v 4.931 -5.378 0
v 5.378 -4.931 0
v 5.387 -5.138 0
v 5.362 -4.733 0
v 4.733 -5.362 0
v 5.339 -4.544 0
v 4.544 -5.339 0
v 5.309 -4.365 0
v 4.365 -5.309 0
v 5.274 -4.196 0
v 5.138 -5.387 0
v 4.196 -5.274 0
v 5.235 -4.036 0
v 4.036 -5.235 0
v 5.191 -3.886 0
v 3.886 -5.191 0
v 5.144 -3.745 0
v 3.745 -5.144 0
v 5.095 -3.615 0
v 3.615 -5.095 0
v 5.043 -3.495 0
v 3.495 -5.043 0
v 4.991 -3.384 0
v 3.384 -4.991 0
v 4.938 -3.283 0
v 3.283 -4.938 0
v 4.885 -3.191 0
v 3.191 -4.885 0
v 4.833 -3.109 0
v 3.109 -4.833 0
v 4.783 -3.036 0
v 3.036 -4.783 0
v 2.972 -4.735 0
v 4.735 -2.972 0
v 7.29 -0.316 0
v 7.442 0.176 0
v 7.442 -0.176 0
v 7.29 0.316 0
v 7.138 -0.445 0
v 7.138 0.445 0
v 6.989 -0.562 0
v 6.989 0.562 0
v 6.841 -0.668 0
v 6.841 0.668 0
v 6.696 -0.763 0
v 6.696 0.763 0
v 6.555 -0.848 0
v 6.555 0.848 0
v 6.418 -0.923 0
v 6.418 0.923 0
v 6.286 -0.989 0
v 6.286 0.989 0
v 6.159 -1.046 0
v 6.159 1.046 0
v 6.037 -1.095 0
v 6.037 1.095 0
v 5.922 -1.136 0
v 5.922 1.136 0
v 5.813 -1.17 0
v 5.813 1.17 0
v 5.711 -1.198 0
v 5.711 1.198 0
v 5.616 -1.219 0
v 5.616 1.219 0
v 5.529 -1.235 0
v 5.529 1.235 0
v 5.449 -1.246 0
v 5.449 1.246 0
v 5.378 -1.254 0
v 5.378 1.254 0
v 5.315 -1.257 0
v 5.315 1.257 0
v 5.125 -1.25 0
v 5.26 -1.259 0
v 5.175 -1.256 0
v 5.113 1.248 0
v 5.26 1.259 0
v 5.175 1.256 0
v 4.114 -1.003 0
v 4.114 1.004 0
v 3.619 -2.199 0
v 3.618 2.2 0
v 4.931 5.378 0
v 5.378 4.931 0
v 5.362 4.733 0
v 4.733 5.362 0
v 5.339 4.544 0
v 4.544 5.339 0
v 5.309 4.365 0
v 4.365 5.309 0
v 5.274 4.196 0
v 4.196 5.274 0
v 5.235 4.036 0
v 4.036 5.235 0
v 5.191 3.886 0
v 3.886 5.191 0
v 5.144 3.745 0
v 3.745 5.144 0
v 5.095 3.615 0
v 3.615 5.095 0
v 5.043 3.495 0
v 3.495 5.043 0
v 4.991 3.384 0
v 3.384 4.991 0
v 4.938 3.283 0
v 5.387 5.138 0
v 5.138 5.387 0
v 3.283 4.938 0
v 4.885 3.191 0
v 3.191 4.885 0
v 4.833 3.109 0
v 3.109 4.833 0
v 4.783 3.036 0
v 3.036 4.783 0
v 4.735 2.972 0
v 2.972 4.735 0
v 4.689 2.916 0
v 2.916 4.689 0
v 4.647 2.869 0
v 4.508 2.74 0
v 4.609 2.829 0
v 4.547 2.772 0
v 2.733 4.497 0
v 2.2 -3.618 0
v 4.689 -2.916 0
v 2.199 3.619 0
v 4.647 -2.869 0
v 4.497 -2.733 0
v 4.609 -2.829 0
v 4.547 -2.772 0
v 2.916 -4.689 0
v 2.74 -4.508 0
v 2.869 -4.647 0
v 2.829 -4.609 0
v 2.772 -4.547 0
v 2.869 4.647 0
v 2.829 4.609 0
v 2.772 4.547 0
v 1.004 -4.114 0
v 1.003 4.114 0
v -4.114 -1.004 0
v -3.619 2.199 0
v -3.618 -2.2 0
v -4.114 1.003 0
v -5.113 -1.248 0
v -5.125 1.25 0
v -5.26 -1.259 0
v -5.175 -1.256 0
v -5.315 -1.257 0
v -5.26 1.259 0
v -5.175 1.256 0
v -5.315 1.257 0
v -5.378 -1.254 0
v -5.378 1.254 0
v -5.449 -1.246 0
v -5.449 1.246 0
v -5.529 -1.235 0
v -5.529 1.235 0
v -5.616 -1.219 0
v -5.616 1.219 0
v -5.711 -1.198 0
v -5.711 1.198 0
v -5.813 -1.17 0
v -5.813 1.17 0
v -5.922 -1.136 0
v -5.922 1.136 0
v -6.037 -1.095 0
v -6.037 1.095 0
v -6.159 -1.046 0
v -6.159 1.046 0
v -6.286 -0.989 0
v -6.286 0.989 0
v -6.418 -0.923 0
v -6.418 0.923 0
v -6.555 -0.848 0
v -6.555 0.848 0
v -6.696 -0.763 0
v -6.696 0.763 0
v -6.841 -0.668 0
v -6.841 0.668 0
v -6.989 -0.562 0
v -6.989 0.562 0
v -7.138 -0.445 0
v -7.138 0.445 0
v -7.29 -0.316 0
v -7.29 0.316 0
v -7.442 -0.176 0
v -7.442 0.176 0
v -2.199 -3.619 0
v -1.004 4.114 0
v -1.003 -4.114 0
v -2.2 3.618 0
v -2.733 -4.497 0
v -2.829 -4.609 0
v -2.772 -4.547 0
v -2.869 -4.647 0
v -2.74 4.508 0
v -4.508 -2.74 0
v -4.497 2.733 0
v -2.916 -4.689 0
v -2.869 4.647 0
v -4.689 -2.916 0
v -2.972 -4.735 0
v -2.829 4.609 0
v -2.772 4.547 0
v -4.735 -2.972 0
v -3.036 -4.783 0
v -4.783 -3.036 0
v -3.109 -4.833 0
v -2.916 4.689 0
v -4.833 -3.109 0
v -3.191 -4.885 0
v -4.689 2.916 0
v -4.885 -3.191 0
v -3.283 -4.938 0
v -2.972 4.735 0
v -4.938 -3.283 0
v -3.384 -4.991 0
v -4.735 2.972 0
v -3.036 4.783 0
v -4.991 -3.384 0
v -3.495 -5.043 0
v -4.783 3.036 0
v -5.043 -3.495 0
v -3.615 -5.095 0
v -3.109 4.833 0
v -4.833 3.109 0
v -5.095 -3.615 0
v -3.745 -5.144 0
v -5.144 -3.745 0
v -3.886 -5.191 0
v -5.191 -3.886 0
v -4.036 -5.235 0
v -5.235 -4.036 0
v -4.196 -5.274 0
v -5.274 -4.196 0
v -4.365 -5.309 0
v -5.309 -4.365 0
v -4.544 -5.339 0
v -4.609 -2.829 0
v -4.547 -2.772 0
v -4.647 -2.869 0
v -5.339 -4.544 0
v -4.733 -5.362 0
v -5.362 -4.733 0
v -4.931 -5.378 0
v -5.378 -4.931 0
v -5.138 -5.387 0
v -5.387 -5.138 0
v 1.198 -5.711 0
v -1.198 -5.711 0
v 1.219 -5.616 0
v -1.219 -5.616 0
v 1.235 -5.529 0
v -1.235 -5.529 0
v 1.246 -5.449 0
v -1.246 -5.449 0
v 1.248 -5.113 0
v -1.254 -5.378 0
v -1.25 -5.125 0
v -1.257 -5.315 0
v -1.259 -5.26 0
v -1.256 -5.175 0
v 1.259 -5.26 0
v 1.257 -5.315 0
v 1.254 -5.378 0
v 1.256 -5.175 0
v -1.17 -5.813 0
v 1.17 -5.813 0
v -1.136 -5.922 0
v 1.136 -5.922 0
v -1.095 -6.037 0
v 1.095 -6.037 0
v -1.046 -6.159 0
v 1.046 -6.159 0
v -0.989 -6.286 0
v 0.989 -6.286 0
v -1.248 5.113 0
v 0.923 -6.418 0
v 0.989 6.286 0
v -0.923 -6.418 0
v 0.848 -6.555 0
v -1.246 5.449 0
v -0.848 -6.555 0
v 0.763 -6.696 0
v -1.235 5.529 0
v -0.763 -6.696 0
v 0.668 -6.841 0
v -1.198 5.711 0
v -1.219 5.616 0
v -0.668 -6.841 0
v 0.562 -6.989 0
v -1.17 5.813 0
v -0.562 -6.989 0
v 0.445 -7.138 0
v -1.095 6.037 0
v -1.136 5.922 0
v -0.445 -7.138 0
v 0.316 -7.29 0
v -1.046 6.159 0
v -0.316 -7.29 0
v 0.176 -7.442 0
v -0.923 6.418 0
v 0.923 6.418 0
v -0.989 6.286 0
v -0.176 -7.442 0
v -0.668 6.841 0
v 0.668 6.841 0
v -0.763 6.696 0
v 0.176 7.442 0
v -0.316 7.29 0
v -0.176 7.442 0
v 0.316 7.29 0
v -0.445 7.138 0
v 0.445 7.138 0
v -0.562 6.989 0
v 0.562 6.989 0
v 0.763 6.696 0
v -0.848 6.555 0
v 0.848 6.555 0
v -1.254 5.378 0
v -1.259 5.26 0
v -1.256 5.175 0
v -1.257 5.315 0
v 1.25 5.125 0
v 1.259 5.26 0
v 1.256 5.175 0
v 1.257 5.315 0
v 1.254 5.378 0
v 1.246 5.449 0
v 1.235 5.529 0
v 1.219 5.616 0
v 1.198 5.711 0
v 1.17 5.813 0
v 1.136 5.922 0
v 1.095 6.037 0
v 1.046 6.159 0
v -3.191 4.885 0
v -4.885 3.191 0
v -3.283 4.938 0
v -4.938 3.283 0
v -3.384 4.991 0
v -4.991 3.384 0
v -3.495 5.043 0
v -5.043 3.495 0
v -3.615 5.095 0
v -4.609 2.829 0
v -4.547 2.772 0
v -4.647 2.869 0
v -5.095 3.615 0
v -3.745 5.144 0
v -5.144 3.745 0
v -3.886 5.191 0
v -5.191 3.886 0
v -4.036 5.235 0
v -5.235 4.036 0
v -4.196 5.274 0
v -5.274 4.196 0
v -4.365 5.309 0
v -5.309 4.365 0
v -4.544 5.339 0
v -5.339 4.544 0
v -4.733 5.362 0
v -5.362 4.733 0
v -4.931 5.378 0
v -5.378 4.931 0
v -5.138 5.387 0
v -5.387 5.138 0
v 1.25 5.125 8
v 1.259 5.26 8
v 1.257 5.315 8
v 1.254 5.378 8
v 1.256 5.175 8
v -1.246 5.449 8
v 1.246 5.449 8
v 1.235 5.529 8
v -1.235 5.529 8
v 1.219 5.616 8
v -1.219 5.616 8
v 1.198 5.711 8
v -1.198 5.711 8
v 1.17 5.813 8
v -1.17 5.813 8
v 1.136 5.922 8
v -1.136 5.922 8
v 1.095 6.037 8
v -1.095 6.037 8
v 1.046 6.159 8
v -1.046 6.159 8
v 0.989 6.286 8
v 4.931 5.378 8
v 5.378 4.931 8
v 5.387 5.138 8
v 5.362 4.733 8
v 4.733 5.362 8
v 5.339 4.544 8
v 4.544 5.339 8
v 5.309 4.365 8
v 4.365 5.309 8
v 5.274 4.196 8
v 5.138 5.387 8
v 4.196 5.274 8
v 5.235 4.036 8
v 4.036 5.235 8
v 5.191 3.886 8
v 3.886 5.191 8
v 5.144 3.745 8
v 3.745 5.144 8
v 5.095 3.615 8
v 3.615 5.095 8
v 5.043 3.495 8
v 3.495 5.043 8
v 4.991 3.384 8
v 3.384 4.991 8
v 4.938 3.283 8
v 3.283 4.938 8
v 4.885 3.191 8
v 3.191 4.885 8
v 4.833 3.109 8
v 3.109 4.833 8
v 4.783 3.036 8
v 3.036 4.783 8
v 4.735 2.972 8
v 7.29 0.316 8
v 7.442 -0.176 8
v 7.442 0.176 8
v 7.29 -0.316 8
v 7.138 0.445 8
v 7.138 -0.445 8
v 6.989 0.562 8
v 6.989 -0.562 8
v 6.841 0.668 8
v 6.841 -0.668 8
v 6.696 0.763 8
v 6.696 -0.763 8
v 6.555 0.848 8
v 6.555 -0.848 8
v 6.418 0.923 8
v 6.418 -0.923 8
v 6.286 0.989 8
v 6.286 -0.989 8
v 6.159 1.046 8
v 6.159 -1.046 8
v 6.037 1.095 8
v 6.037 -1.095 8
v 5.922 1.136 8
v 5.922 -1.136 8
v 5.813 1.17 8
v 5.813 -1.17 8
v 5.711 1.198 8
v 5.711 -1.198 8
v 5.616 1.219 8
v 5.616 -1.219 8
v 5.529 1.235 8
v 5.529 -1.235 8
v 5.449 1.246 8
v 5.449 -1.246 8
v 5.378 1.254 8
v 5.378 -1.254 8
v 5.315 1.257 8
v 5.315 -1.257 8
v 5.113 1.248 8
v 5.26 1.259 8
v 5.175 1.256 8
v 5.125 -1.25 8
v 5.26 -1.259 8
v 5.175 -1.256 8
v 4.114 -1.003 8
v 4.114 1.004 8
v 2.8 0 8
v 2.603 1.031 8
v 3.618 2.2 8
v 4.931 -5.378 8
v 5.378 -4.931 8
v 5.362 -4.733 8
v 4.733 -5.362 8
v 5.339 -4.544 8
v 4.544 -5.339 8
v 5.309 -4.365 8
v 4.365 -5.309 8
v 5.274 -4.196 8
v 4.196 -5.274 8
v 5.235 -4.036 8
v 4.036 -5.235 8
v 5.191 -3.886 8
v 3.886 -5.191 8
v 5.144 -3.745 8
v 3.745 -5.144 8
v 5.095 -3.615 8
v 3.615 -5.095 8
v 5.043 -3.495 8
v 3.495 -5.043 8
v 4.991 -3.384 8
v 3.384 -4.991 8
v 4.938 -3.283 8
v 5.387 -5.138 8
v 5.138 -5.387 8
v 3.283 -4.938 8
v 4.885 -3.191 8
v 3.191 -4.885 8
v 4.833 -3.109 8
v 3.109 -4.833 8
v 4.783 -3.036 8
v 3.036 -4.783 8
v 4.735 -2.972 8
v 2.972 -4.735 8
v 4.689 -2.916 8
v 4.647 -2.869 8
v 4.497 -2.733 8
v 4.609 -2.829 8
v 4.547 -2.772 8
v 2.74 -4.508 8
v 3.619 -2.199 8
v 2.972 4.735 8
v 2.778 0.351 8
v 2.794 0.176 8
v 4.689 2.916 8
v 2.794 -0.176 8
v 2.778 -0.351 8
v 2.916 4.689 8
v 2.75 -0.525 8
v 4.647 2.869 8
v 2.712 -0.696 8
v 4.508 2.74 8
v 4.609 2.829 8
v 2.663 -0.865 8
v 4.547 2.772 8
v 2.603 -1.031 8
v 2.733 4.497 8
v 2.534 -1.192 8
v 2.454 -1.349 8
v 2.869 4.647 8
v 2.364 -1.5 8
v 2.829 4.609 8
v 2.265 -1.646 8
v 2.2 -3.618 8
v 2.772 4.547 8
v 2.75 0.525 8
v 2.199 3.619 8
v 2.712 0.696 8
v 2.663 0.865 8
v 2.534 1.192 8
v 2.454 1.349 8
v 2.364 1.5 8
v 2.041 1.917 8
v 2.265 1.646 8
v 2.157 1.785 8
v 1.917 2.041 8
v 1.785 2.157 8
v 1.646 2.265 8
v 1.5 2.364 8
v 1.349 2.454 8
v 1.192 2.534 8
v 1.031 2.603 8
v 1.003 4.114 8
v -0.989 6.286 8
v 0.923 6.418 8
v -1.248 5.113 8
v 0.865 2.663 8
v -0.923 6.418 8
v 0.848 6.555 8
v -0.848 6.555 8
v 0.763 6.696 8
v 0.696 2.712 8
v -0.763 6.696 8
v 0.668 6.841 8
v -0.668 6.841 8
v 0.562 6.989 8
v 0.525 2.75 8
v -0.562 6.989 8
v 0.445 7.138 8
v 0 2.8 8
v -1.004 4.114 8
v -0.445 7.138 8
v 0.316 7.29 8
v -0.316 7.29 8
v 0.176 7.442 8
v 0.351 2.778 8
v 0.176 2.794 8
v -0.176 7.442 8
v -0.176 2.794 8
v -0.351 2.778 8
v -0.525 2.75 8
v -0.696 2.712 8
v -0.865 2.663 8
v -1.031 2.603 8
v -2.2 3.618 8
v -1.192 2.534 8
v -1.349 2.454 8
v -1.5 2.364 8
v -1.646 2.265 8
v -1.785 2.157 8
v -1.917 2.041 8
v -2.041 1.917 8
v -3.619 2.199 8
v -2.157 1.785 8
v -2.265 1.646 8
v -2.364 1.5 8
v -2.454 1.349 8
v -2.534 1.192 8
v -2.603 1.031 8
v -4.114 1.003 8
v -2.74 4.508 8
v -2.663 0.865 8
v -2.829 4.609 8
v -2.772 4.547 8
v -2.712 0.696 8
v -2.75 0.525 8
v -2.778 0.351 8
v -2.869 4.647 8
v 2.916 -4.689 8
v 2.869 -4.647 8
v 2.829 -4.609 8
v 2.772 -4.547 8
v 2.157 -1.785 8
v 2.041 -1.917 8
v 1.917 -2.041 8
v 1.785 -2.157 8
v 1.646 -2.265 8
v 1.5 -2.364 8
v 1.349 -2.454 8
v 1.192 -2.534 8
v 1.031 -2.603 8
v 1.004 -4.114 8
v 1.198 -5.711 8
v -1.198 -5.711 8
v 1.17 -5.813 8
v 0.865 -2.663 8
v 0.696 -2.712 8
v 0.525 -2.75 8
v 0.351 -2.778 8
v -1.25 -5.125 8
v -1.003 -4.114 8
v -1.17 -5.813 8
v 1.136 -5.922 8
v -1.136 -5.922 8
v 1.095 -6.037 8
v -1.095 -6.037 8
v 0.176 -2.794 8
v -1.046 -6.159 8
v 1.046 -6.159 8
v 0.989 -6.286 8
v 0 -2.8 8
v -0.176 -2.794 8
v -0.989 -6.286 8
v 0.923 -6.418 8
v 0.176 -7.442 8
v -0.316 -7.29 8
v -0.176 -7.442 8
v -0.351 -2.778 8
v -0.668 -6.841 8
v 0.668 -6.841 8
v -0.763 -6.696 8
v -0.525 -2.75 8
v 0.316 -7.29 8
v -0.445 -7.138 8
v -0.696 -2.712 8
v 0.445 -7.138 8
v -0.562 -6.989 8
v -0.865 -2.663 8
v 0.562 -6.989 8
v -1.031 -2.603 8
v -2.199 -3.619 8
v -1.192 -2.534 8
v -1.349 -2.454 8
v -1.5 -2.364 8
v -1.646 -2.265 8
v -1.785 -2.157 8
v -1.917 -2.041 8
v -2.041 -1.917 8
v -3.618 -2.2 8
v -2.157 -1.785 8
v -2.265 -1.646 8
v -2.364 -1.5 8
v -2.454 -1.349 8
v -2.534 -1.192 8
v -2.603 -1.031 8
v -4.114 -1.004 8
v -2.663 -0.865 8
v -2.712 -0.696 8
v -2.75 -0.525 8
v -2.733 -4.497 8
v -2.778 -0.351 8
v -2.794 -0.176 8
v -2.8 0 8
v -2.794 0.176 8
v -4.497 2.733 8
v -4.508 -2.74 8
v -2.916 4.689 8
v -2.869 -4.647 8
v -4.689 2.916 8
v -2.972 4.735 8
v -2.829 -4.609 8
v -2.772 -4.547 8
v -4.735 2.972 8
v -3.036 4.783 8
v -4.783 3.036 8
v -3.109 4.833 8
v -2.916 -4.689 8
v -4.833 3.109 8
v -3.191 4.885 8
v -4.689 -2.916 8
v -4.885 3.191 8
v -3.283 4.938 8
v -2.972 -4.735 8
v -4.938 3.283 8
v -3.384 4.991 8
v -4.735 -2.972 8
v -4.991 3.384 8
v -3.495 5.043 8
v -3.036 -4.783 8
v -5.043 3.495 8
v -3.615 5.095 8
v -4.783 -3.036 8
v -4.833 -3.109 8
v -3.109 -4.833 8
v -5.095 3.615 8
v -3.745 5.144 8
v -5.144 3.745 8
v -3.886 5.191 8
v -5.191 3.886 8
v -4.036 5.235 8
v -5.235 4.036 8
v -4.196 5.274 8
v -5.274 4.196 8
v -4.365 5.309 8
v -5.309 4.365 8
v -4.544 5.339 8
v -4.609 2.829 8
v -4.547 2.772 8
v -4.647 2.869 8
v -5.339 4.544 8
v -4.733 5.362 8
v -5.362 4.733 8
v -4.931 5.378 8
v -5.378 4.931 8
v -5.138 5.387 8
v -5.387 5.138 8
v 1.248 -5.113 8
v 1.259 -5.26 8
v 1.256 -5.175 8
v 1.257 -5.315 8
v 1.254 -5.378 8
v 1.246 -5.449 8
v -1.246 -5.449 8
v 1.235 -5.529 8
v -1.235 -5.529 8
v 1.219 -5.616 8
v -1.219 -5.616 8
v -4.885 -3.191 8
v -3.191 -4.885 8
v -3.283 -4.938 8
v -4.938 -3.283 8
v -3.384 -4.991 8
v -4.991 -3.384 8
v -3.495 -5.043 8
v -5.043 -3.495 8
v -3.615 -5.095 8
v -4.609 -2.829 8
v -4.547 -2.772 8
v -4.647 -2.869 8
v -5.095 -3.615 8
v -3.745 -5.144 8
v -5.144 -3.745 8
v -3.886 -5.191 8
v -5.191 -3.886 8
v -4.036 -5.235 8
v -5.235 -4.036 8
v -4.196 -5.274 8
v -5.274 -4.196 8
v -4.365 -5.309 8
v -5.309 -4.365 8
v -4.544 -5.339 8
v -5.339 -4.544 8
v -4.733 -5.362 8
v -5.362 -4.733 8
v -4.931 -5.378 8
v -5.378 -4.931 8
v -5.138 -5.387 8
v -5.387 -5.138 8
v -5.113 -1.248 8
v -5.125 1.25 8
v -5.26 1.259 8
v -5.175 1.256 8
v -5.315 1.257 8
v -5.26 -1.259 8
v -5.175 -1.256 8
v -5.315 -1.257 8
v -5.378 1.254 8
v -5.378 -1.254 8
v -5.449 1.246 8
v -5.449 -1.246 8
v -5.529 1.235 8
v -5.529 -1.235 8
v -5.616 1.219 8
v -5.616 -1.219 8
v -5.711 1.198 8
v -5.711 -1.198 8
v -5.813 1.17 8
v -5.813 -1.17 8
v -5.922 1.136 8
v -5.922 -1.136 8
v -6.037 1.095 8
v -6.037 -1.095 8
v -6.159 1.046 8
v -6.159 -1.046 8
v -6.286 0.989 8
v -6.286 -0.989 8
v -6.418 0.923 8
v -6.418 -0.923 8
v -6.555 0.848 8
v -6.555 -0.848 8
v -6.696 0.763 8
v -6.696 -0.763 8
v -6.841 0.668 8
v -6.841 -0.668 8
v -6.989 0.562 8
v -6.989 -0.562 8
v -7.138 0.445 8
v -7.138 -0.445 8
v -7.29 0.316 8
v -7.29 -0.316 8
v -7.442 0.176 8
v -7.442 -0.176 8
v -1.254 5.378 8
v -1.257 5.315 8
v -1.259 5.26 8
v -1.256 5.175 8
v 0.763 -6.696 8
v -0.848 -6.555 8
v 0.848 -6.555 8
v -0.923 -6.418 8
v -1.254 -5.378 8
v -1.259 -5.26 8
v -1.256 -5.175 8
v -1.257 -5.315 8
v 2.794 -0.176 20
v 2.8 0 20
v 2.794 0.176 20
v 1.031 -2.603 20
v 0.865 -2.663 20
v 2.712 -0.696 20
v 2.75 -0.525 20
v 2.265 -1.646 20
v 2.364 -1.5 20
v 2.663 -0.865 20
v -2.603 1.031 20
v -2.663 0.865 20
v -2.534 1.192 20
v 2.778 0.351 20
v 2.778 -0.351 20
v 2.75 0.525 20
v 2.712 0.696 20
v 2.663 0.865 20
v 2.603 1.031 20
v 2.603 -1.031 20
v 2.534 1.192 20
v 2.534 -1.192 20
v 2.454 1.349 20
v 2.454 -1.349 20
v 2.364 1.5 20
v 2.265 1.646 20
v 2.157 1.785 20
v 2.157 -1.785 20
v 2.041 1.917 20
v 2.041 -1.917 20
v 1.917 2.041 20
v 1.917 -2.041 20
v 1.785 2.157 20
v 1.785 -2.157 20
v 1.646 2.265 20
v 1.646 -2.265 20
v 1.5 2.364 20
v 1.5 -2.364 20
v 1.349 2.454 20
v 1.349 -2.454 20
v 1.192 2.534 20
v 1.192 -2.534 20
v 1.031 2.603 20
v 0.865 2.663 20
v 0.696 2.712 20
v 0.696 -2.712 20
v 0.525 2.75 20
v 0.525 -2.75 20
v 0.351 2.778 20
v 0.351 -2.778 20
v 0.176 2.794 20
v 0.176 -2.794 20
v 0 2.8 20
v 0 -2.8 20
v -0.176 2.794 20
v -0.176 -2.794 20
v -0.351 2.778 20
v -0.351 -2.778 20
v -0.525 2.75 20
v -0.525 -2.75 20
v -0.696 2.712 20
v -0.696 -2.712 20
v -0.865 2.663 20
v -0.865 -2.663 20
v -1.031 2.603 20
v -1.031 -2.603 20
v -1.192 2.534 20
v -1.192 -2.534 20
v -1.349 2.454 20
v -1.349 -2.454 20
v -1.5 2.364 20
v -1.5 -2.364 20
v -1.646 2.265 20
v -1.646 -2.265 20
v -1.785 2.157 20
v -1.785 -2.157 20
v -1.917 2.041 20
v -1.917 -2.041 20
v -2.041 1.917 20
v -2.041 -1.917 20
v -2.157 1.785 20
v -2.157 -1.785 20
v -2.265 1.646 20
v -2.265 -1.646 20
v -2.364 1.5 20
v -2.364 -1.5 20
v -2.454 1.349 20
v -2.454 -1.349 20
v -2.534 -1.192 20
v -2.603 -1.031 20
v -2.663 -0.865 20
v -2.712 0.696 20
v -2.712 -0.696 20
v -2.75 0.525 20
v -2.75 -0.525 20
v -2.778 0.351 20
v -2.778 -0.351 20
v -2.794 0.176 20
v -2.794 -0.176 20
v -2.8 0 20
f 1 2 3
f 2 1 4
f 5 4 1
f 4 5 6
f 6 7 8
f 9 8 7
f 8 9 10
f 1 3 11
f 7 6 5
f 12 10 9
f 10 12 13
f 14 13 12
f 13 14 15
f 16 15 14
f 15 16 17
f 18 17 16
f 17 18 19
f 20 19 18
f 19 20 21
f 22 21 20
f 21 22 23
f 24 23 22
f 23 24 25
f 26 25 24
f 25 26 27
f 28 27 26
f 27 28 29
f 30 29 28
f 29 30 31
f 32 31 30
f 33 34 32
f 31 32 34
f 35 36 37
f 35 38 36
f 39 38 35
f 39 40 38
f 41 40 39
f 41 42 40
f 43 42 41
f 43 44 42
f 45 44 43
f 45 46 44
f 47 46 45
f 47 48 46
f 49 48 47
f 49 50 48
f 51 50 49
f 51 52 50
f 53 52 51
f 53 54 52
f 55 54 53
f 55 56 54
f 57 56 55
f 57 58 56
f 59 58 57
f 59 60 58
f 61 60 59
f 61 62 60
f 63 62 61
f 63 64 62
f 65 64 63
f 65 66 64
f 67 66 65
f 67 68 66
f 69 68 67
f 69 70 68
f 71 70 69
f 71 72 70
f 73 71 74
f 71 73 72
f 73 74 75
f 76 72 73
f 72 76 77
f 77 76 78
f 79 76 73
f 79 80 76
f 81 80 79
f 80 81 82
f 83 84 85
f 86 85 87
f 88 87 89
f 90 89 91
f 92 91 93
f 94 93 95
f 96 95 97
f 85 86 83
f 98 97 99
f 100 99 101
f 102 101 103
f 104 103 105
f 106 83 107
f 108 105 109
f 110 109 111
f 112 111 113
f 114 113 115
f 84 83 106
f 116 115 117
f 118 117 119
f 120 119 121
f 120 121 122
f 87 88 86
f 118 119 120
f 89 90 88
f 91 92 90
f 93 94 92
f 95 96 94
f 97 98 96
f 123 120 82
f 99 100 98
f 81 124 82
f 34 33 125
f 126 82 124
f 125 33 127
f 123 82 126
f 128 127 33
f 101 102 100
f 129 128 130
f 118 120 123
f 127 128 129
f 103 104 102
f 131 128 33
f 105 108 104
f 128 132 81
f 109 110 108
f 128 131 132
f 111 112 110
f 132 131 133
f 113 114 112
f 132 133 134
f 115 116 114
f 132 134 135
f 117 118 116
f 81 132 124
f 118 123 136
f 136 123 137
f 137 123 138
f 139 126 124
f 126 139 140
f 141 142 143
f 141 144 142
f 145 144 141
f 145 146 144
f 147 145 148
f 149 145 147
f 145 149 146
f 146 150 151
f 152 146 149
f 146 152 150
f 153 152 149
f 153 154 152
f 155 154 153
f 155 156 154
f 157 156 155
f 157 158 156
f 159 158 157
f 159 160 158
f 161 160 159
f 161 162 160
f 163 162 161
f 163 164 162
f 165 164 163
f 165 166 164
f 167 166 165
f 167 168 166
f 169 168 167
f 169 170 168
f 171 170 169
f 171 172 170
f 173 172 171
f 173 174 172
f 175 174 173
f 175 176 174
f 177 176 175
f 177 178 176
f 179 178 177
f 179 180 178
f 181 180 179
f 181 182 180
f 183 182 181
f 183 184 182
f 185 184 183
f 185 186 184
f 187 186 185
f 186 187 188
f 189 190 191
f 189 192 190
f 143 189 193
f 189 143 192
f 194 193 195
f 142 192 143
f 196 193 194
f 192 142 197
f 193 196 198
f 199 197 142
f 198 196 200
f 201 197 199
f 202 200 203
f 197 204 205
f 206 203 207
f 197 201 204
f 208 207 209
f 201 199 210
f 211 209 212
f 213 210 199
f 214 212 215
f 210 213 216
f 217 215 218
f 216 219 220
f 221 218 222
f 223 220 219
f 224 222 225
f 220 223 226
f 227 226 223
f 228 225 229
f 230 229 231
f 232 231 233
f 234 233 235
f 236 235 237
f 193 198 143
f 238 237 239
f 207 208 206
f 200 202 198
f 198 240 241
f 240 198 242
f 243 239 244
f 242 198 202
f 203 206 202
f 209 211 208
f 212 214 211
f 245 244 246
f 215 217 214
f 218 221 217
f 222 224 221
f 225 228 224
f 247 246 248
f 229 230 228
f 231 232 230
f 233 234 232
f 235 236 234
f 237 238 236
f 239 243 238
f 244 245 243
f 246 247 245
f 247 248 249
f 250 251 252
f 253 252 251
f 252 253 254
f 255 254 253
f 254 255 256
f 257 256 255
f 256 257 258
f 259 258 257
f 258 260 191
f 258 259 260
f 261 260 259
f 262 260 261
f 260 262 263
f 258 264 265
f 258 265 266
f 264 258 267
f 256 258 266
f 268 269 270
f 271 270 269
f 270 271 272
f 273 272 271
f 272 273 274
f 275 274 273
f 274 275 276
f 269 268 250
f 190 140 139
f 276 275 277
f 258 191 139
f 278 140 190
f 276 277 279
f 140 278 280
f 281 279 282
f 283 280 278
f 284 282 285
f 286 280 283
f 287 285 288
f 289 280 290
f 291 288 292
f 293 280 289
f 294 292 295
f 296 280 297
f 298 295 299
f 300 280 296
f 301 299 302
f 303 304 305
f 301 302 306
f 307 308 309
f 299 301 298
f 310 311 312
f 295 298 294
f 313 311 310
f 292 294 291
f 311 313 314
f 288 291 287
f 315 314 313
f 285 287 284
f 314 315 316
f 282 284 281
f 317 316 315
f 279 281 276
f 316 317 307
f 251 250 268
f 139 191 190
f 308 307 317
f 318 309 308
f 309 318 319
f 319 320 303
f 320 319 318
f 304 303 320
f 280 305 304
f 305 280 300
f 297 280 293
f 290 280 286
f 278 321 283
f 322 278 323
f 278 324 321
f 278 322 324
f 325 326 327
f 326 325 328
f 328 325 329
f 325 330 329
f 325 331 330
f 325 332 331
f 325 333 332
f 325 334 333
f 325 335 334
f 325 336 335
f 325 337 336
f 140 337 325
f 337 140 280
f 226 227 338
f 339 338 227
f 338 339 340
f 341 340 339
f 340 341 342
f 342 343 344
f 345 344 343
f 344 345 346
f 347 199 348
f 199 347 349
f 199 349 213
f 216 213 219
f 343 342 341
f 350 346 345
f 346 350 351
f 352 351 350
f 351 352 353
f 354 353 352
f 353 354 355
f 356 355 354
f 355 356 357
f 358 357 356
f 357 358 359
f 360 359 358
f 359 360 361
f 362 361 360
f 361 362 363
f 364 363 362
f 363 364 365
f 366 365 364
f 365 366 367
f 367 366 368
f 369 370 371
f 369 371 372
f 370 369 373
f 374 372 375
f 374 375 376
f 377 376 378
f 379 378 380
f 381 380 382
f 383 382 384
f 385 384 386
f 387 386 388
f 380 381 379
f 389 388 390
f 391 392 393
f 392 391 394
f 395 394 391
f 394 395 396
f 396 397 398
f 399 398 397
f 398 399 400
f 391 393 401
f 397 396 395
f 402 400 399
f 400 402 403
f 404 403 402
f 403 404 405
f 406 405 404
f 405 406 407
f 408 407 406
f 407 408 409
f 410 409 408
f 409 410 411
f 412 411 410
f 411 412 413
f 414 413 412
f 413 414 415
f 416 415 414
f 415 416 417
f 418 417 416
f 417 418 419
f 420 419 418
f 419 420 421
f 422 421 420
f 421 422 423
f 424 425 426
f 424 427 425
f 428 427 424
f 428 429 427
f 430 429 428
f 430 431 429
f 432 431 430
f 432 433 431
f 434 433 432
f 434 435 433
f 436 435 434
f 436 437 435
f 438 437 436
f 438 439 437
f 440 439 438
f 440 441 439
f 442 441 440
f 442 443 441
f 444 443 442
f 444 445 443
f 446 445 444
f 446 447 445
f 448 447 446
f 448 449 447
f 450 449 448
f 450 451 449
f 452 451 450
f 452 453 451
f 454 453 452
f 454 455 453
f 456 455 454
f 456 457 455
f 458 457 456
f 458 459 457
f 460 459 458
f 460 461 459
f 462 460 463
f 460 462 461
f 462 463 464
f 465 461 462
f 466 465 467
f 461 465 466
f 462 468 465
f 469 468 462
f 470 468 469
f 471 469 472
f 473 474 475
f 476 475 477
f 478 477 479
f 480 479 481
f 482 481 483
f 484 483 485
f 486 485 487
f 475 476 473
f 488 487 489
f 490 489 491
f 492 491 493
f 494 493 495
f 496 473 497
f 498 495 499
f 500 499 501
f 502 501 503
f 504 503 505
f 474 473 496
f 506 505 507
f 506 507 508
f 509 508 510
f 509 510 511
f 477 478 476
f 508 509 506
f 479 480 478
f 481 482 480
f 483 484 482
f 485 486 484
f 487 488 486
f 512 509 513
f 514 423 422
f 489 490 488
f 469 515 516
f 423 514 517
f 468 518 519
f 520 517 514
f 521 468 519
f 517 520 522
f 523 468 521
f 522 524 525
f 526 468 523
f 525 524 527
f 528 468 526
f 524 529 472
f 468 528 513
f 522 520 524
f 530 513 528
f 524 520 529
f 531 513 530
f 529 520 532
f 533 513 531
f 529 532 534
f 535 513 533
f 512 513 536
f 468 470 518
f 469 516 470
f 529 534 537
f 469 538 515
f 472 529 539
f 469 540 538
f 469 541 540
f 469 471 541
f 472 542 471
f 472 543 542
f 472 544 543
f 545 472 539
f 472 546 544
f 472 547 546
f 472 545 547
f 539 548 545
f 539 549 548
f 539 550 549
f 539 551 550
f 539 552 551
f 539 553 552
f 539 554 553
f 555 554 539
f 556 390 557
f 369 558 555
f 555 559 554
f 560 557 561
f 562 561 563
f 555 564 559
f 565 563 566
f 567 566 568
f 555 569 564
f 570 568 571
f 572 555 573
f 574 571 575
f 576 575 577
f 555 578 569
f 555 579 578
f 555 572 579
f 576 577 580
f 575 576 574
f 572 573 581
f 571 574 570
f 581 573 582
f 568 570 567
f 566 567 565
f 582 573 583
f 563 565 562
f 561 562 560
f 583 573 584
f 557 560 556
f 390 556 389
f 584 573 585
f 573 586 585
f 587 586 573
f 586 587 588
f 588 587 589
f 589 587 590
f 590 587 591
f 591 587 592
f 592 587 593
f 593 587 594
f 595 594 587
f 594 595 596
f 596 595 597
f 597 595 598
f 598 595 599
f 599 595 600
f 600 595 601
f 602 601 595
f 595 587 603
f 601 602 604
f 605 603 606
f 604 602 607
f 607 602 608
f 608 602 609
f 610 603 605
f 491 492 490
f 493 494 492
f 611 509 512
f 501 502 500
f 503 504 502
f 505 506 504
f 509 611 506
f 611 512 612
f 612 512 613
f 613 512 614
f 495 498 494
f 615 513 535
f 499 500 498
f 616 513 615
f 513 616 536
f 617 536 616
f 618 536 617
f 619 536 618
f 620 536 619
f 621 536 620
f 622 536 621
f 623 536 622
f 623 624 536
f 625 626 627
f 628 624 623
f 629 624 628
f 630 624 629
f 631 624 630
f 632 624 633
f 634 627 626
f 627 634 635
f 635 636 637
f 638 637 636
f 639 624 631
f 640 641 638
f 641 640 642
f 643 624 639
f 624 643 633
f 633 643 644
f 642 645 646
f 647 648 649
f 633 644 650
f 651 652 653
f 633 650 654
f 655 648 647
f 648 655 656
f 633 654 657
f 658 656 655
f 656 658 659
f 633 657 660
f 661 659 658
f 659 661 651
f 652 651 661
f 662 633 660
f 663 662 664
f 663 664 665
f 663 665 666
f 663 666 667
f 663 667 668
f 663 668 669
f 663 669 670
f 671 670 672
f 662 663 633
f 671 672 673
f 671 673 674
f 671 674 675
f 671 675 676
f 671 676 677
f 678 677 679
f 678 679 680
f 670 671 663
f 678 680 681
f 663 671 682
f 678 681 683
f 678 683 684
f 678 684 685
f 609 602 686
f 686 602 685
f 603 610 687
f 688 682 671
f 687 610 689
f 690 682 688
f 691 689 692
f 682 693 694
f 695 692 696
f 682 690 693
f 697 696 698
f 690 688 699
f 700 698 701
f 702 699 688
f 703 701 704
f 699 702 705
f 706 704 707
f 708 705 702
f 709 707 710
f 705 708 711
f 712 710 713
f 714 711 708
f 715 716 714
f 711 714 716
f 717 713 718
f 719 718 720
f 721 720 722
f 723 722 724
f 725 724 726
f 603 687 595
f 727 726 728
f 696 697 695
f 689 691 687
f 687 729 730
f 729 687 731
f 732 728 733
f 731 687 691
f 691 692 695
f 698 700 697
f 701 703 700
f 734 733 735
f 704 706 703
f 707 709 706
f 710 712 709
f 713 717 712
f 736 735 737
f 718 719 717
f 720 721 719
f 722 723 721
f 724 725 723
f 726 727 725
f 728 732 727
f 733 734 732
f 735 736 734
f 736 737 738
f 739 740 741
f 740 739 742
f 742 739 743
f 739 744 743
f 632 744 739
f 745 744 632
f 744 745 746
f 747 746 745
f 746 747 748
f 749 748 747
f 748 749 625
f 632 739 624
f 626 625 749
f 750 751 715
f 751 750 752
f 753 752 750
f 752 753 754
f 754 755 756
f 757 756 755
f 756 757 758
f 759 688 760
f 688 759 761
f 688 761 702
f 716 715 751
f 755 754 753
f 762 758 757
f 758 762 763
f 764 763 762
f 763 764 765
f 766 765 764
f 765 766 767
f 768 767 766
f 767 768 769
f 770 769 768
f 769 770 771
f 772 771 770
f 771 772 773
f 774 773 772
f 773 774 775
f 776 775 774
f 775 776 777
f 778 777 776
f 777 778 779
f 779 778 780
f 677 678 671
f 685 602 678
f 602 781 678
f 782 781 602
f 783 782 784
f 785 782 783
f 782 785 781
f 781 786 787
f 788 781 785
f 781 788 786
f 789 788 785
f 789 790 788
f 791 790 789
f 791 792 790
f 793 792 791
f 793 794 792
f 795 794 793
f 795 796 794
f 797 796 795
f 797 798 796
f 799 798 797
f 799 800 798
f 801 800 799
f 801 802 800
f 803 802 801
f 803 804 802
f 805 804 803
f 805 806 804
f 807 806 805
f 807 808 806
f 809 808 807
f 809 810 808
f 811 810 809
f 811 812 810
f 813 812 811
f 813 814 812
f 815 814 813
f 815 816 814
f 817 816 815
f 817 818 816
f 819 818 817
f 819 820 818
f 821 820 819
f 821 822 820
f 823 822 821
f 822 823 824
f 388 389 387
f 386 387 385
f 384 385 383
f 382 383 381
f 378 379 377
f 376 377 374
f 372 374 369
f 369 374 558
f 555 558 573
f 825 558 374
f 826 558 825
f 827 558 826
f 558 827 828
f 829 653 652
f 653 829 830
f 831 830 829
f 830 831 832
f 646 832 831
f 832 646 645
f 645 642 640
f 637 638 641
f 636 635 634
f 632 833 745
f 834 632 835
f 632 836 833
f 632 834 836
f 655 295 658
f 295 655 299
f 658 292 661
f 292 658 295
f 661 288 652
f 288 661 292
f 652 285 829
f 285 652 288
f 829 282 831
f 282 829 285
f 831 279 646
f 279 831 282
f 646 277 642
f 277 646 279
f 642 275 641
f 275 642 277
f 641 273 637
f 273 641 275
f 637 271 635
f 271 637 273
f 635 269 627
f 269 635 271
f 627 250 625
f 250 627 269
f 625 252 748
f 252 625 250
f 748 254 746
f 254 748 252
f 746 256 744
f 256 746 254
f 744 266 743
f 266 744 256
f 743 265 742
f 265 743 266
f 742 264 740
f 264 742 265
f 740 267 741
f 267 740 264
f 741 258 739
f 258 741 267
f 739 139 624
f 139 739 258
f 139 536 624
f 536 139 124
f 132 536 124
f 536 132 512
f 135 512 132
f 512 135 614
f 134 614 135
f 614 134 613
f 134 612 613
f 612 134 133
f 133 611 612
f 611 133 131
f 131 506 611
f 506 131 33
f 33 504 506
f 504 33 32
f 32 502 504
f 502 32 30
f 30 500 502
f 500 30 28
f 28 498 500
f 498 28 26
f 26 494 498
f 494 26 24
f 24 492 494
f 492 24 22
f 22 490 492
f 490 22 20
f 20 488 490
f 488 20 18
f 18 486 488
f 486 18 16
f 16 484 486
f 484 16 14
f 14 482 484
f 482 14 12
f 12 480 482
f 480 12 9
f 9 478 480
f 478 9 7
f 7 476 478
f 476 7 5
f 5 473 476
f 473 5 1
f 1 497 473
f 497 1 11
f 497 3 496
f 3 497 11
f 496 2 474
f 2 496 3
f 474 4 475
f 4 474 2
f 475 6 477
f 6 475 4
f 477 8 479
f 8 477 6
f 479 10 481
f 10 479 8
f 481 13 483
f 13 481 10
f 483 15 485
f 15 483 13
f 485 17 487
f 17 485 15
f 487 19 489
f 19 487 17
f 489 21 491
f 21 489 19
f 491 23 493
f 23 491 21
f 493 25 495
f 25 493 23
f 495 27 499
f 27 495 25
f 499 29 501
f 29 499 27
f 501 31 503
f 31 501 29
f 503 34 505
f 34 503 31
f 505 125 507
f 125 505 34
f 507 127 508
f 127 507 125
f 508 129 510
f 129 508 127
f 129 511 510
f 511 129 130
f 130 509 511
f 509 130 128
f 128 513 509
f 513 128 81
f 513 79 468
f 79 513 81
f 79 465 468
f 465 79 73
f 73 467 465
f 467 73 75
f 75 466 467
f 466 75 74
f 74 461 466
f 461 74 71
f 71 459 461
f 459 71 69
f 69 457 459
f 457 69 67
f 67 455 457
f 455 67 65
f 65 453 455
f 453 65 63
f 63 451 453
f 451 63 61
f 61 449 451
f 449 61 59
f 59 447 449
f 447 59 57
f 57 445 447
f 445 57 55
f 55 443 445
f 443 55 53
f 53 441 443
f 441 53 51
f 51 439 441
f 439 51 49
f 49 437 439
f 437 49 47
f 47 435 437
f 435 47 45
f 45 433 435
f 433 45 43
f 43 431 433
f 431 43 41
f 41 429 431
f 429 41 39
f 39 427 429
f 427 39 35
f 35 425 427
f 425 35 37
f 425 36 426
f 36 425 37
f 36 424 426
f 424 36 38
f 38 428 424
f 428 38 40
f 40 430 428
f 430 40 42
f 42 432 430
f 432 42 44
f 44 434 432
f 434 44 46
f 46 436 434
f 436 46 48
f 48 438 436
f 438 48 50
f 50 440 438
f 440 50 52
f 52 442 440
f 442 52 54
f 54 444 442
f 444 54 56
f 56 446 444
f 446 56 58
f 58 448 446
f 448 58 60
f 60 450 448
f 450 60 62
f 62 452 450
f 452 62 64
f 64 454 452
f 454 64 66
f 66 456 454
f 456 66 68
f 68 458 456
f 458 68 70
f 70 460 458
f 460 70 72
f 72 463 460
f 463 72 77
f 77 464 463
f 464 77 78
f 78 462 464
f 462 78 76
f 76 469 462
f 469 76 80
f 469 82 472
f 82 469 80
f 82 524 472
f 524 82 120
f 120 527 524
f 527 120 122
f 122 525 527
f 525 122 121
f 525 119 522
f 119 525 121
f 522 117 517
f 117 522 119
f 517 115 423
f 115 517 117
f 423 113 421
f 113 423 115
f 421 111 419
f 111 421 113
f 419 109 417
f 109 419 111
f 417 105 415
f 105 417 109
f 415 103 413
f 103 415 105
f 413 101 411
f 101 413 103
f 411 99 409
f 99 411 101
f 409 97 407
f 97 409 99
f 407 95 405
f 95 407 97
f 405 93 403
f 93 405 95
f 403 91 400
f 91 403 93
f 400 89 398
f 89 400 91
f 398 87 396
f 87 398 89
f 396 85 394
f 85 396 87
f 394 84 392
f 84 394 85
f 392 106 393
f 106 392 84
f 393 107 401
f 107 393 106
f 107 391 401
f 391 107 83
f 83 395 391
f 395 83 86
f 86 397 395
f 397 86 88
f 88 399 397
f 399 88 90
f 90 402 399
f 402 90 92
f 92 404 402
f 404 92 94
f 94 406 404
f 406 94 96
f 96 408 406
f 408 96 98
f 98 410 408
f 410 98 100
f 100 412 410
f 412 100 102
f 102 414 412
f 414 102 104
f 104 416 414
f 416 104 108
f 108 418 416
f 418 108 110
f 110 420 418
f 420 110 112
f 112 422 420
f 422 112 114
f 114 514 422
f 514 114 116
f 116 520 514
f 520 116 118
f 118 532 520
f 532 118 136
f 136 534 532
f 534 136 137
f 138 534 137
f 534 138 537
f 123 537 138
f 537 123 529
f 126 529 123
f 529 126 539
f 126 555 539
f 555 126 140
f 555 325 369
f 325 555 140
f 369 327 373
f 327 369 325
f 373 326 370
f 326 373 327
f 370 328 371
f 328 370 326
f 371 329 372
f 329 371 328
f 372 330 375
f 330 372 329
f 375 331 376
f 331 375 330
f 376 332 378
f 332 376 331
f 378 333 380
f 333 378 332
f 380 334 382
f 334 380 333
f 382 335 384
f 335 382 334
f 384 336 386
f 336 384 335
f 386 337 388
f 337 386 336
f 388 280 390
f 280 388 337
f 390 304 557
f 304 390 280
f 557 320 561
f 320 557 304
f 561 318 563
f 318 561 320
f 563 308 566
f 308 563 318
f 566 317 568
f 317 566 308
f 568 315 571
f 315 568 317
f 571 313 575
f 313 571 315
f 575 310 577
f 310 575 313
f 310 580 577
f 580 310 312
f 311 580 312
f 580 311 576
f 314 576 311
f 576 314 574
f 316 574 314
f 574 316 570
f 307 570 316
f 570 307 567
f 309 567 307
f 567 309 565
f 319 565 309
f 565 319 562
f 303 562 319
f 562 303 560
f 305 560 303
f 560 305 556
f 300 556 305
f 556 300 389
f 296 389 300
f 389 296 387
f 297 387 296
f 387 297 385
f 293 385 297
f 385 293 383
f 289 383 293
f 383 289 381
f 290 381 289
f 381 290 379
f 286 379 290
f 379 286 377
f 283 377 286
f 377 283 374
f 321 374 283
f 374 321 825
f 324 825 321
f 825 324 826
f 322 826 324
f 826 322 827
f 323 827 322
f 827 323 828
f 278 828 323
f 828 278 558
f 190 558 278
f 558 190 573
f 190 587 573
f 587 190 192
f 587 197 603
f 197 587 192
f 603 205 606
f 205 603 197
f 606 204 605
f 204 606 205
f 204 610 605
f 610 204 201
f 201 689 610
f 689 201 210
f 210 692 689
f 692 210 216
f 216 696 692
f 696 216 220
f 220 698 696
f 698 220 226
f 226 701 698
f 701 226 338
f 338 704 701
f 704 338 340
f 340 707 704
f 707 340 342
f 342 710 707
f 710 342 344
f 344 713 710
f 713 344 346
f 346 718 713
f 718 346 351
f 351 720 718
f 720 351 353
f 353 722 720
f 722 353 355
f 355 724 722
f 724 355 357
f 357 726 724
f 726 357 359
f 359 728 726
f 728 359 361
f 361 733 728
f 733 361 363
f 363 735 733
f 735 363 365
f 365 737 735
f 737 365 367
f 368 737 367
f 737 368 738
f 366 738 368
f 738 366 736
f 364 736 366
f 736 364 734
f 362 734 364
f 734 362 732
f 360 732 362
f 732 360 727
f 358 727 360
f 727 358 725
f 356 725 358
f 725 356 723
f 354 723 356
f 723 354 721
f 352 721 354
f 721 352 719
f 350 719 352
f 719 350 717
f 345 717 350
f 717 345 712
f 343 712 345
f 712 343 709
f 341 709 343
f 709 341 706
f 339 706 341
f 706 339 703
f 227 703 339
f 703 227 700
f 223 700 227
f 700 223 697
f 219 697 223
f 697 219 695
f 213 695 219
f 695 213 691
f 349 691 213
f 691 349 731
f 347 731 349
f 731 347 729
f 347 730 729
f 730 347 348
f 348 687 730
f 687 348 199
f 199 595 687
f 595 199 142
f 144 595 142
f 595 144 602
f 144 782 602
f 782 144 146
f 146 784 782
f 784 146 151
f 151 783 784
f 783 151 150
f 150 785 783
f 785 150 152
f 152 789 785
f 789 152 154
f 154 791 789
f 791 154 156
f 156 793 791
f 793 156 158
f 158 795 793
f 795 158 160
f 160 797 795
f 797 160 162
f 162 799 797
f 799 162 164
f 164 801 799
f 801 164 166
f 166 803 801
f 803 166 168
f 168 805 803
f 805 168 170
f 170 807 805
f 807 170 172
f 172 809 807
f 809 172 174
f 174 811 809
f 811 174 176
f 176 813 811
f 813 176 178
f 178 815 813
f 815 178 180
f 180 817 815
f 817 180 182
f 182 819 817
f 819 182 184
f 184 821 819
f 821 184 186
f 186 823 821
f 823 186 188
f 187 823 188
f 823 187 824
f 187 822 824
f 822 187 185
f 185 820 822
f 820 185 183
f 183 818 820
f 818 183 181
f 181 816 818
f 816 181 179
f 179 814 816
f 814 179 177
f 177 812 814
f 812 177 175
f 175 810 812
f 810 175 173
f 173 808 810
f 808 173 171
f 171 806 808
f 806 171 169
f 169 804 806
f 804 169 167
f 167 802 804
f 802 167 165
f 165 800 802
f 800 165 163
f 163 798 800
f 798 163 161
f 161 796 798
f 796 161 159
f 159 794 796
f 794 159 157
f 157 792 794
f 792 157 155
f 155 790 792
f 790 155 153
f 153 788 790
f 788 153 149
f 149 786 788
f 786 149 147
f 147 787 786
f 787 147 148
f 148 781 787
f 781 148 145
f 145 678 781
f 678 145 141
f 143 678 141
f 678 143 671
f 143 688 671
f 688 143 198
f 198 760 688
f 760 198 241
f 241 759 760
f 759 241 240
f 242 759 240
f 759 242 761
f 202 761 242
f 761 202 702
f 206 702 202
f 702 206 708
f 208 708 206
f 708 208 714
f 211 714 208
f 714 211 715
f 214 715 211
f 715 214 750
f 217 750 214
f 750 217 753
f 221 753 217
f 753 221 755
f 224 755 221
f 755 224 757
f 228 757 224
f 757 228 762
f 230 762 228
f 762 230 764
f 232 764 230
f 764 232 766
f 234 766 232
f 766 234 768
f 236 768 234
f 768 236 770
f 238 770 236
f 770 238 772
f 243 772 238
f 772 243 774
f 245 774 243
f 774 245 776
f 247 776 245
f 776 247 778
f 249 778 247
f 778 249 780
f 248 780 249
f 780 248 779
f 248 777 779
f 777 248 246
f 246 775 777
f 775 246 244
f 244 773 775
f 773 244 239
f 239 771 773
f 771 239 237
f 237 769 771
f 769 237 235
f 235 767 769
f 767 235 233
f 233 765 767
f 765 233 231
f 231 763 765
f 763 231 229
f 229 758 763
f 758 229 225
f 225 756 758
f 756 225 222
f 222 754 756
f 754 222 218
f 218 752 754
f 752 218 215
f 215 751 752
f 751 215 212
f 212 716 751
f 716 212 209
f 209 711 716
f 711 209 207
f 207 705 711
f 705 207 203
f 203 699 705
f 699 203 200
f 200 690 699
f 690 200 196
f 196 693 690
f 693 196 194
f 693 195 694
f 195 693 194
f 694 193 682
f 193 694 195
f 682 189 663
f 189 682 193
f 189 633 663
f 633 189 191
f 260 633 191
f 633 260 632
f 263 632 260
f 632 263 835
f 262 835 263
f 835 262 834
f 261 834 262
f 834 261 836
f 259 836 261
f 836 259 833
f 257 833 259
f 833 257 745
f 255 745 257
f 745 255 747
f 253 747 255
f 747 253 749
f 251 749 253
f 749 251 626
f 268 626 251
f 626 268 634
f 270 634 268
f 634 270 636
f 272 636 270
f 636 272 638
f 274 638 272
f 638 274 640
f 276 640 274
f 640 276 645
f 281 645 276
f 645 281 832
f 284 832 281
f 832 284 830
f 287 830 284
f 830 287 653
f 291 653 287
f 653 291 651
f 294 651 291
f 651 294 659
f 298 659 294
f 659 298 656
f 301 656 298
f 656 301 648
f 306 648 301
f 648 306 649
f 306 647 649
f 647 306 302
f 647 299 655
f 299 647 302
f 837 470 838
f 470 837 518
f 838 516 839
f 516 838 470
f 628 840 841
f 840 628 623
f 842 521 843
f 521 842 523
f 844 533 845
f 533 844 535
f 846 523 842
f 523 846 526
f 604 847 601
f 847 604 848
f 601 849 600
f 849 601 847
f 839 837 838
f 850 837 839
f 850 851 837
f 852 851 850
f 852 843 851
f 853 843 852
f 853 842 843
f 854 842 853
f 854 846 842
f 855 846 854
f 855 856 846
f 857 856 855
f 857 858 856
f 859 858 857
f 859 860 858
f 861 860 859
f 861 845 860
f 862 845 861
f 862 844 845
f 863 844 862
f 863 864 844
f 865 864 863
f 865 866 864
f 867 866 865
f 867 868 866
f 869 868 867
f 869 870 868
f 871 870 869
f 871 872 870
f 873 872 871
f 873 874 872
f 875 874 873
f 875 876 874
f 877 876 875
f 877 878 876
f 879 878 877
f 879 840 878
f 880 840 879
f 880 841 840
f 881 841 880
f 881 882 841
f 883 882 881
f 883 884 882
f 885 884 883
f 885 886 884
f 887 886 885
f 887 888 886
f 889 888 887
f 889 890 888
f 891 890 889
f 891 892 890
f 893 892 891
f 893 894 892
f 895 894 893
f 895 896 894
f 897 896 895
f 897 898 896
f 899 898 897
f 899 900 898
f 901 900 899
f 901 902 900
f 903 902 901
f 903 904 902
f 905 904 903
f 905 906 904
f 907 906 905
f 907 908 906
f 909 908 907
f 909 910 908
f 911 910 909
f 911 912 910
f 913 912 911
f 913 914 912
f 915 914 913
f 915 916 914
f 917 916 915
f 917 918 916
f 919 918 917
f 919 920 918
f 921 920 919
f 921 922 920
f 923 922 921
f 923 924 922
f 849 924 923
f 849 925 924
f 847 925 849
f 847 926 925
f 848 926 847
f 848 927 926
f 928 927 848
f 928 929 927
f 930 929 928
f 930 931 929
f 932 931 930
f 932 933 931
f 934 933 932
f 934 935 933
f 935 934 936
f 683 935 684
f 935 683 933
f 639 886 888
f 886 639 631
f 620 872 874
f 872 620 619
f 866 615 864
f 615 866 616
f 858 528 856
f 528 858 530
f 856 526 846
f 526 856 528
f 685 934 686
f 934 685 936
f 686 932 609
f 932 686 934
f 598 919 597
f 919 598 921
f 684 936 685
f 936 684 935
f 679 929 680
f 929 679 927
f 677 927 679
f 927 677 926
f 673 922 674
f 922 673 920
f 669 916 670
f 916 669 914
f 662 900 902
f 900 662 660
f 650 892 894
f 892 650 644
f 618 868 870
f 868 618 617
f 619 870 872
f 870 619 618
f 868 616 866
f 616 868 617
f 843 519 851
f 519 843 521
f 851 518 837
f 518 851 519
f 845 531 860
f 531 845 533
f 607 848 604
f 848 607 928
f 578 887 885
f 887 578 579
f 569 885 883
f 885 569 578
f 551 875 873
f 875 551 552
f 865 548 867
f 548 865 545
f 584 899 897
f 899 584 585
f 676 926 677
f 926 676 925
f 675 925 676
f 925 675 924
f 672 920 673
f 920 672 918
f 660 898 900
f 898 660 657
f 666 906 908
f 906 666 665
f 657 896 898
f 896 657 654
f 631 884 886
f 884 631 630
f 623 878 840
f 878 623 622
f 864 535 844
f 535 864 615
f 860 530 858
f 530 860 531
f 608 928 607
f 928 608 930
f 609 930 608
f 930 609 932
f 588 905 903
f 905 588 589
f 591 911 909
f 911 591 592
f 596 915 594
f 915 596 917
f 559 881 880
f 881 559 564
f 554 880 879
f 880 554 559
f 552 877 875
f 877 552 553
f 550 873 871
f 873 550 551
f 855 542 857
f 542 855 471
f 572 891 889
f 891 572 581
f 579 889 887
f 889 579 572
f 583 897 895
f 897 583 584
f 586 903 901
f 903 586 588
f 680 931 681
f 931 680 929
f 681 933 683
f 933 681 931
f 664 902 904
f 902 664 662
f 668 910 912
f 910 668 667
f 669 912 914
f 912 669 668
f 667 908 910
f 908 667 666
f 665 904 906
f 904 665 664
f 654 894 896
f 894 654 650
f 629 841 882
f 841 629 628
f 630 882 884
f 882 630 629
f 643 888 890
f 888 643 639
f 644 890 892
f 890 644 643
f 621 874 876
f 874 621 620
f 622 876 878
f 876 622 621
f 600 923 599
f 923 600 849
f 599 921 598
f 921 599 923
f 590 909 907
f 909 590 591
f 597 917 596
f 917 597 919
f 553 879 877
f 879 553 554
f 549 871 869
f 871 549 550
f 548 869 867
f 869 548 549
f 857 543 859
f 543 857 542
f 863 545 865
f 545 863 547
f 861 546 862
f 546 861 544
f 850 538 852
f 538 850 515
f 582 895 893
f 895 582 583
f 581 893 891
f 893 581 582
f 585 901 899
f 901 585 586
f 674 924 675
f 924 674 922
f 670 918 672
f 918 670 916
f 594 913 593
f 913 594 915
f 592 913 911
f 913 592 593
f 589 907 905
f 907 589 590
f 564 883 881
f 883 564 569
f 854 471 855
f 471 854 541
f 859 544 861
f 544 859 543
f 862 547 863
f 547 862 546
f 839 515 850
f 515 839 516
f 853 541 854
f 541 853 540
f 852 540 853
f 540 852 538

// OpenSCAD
use <parametric_involute_gear_v5.0.scad>

thk = 8;
bore = 0;

$fn=100;

intersection () {
    gear (number_of_teeth=8,
        circular_pitch=268,
        gear_thickness = thk,
        rim_thickness = thk,
        rim_width = 5,
        hub_thickness = 0,
        hub_diameter = 22,
        bore_diameter = bore,
        twist = 0,
        circles=0);
}

translate ([0,0,thk])
    linear_extrude (12) circle (2.8);
